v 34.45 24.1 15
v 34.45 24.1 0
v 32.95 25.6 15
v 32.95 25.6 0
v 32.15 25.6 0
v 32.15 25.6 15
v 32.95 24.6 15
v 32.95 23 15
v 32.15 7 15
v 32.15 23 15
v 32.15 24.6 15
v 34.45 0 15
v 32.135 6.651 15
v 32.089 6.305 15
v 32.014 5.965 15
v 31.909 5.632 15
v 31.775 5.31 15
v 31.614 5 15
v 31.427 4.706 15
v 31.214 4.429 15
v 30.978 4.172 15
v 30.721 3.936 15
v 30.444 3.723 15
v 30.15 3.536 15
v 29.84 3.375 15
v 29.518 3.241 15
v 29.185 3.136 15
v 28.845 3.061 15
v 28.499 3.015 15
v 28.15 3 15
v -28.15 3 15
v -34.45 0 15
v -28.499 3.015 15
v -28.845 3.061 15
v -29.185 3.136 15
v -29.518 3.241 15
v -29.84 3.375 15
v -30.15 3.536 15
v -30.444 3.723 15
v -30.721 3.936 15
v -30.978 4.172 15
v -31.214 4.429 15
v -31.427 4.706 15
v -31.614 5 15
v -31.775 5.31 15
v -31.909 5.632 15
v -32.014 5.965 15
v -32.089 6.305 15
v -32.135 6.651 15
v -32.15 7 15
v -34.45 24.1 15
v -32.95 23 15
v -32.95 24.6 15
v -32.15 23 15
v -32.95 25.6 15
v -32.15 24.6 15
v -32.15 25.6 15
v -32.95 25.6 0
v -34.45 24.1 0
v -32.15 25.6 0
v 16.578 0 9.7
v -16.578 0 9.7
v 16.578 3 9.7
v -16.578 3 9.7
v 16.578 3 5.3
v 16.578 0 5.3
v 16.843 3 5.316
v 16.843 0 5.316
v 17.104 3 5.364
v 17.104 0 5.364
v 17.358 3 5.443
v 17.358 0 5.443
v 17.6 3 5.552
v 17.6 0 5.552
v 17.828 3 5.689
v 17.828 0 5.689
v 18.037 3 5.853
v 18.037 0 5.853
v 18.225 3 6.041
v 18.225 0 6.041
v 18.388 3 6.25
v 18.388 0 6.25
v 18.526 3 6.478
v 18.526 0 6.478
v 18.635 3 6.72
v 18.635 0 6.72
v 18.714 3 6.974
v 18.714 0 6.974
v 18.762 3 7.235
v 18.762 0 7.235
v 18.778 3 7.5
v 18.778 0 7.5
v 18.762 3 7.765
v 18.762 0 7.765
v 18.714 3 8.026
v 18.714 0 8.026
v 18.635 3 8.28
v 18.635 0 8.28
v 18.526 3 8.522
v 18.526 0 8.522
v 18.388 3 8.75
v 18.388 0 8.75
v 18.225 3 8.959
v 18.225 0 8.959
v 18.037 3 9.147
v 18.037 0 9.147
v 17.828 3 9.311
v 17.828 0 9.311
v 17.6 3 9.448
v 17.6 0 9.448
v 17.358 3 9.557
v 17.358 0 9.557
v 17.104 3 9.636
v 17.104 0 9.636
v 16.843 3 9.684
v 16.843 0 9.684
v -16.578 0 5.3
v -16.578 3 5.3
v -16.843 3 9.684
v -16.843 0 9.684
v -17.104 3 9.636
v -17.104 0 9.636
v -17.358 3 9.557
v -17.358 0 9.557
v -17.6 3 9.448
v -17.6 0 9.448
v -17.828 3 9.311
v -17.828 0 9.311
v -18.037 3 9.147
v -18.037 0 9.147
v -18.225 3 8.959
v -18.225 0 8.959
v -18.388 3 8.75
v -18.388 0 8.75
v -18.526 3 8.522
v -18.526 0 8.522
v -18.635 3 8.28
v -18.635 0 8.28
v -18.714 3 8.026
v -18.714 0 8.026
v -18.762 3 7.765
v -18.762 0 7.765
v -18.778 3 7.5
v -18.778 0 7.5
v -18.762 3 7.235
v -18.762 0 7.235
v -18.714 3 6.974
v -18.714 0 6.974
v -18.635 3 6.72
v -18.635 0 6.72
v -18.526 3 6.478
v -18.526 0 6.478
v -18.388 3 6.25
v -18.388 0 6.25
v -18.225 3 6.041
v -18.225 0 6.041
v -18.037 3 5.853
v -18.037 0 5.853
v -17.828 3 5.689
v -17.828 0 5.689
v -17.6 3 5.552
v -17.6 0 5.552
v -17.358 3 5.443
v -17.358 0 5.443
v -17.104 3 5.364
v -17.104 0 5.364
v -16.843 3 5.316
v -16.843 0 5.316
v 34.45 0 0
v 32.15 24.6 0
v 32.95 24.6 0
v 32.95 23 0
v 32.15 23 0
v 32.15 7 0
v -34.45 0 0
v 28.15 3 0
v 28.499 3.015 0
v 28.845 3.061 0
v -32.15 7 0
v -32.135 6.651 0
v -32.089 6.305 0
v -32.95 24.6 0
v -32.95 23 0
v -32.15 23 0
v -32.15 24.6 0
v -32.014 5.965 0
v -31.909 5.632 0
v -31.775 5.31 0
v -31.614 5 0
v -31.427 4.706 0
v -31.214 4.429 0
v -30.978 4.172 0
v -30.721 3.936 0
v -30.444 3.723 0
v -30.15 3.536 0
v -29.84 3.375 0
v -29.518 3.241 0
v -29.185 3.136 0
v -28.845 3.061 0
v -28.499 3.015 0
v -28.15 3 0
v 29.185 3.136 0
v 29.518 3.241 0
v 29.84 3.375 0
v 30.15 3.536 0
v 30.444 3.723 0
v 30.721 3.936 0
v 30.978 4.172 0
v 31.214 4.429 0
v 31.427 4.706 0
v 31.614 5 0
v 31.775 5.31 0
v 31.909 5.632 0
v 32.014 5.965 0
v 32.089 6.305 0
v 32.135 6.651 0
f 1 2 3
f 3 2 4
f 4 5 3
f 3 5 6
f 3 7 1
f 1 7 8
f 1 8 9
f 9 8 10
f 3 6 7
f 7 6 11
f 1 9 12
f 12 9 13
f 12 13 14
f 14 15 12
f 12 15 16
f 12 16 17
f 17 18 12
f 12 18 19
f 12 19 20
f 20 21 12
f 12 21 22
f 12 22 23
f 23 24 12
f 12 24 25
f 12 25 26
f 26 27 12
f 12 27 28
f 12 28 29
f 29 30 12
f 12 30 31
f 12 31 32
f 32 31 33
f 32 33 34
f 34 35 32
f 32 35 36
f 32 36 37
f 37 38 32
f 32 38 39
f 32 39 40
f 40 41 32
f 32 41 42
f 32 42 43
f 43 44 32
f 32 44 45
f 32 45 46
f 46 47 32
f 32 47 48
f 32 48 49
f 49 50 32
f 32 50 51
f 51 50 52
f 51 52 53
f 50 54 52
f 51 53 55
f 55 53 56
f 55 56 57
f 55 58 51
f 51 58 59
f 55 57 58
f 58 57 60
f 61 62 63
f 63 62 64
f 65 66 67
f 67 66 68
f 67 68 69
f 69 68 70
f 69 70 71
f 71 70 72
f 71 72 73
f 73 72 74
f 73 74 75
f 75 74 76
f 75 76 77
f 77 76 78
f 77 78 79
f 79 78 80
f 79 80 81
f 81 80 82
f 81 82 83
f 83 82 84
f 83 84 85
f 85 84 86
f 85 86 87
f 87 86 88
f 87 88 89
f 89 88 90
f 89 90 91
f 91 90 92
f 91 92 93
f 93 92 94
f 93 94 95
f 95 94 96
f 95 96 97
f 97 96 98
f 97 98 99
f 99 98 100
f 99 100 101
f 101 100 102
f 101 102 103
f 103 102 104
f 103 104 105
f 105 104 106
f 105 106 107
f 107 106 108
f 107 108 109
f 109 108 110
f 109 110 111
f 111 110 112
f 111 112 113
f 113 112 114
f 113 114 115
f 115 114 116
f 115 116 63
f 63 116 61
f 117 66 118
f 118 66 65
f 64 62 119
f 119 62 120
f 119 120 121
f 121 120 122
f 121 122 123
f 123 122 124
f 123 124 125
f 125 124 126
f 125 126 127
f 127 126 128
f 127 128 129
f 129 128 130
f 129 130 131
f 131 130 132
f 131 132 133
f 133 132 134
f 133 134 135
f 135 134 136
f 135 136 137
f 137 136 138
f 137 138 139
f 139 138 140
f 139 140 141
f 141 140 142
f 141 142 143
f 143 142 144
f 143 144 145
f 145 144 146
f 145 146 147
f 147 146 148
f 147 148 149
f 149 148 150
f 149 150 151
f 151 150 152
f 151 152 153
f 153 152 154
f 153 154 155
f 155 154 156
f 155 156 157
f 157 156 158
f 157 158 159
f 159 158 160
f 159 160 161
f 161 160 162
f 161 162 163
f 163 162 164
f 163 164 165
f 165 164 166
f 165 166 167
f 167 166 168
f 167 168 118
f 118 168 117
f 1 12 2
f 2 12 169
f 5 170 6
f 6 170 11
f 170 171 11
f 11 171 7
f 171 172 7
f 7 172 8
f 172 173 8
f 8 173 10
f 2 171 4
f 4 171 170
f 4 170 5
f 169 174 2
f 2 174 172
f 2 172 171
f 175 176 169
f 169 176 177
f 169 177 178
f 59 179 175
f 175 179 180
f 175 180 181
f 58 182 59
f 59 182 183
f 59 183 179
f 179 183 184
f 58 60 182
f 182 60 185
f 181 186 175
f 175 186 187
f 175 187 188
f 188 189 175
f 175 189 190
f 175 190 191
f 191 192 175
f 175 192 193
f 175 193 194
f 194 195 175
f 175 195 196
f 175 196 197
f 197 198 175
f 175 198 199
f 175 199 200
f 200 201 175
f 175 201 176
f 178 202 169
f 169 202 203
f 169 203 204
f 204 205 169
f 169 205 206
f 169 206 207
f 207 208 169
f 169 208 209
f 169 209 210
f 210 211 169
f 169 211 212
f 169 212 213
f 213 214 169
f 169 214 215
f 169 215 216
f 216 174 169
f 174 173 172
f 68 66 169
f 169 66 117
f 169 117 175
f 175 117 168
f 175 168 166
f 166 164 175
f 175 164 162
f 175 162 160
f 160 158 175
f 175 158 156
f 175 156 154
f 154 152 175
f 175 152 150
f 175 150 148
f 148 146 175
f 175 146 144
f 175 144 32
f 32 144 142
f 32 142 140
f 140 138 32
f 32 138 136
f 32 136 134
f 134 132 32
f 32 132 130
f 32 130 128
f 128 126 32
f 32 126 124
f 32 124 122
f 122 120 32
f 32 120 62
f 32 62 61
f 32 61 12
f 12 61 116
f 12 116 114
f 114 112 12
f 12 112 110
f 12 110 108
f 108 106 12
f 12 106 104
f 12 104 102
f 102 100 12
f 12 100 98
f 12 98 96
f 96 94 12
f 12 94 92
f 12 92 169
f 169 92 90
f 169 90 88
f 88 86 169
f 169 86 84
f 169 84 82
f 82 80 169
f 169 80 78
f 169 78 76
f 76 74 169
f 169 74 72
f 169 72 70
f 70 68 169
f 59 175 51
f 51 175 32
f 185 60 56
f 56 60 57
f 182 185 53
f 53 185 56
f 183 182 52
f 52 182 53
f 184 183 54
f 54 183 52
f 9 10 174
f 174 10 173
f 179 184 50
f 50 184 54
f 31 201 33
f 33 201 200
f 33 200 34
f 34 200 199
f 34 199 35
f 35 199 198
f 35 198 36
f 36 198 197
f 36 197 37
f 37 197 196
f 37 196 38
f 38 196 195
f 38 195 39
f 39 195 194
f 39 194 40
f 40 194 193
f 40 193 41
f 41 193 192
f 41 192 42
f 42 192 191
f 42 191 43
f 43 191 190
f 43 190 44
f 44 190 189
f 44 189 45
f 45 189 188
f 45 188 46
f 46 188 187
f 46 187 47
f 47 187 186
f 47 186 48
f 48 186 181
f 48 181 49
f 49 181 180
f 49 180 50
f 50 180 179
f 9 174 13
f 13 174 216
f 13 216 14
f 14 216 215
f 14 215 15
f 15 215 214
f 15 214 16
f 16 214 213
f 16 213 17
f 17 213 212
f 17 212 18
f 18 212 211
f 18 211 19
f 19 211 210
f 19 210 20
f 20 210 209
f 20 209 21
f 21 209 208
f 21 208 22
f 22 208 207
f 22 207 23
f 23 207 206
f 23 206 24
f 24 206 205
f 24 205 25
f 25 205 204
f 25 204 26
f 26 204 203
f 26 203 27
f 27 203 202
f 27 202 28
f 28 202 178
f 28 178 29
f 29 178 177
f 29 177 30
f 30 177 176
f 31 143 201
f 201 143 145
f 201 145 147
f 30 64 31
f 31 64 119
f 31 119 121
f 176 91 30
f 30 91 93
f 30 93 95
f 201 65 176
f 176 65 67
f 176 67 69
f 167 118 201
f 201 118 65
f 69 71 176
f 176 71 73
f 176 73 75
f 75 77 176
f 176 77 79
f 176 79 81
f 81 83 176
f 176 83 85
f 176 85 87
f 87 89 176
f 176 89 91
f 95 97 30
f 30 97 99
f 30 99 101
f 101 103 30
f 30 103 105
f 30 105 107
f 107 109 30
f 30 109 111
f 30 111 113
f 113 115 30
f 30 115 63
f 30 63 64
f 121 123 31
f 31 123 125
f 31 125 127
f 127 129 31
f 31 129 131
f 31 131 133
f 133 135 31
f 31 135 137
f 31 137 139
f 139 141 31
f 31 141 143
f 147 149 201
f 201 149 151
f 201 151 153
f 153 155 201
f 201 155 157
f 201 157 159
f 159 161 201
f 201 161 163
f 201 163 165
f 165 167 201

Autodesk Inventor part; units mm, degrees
ref_plane "YZ Plane" through (0, 0, 0) normal (1, 0, 0) x (0, 1, 0)
ref_plane "XZ Plane" through (0, 0, 0) normal (0, 1, 0) x (-1, 0, 0)
ref_plane "XY Plane" through (0, 0, 0) normal (0, 0, 1) x (1, 0, 0)
sketch "Sketch1" plane through (0, 0, 0) normal (0, 0, 1) x (1, 0, 0)
  line L0 (0, 0) -> (-34.45, 0)
  line L1 (-34.45, 0) -> (-34.45, 25.6)
  line L2 (-34.45, 25.6) -> (-32.15, 25.6)
  line L3 (-32.15, 25.6) -> (-32.15, 24.6)
  line L4 (-32.15, 24.6) -> (-32.95, 24.6)
  line L5 (-32.95, 24.6) -> (-32.95, 23)
  line L6 (-32.95, 23) -> (-32.15, 23)
  line L7 (-32.15, 23) -> (-32.15, 3)
  line L8 (-32.15, 3) -> (0, 3)
  line L9 (0, 3) -> (0, 0)
  point P0 (-32.95, 23.8)
  point P1 (0, 1.5)
  dimension "d0" = 3
  dimension "d2" = 0.8
  dimension "d3" = 1
  dimension "d4" = 1.6
  dimension "d5" = 1.5
  dimension "d9" = 20
  dimension "d15" = 65.9
extrude "Extrusion1" add sketch "Sketch1" along normal blind 15
mirror "Mirror1" about plane through (0, 0, 0) normal (1, 0, 0) of "Extrusion1"
sketch "Sketch2" plane through (-32.15, 3, 15) normal (0, 1, 0) x (1, 0, 0)
  line L0 (64.3, 15) -> (0, 15) construction
  line L1 (0, 15) -> (0, 0) construction
  line L2 (0, 0) -> (64.3, 0) construction
  line L3 (64.3, 15) -> (64.3, 0) construction
  line L4 (15.5721, 7.5) -> (48.7279, 7.5) construction
  line L5 (15.5721, 5.3) -> (48.7279, 5.3)
  line L6 (48.7279, 9.7) -> (15.5721, 9.7)
  arc A0 (15.5721, 9.7) -> (15.5721, 5.3) centre (15.5721, 7.5) ccw
  arc A1 (48.7279, 5.3) -> (48.7279, 9.7) centre (48.7279, 7.5) ccw
  line L7 (66.6, 15) -> (66.6, 0) projected
  point P0 (32.15, 15)
  point P1 (32.15, 7.5)
  point P2 (32.15, 15)
  point P3 (66.6, 7.5)
  dimension "d12" = 2.2
extrude "Extrusion2" cut sketch "Sketch2" against normal through all
chamfer "Chamfer1" distance 1.5 angle 45 2 edges at (-34.45, 25.6, 7.5) (34.45, 25.6, 7.5)
fillet "Fillet1" radius 4 2 edges at (32.15, 3, 7.5) (-32.15, 3, 7.5)
properties part number "Discovery boar clamp"
